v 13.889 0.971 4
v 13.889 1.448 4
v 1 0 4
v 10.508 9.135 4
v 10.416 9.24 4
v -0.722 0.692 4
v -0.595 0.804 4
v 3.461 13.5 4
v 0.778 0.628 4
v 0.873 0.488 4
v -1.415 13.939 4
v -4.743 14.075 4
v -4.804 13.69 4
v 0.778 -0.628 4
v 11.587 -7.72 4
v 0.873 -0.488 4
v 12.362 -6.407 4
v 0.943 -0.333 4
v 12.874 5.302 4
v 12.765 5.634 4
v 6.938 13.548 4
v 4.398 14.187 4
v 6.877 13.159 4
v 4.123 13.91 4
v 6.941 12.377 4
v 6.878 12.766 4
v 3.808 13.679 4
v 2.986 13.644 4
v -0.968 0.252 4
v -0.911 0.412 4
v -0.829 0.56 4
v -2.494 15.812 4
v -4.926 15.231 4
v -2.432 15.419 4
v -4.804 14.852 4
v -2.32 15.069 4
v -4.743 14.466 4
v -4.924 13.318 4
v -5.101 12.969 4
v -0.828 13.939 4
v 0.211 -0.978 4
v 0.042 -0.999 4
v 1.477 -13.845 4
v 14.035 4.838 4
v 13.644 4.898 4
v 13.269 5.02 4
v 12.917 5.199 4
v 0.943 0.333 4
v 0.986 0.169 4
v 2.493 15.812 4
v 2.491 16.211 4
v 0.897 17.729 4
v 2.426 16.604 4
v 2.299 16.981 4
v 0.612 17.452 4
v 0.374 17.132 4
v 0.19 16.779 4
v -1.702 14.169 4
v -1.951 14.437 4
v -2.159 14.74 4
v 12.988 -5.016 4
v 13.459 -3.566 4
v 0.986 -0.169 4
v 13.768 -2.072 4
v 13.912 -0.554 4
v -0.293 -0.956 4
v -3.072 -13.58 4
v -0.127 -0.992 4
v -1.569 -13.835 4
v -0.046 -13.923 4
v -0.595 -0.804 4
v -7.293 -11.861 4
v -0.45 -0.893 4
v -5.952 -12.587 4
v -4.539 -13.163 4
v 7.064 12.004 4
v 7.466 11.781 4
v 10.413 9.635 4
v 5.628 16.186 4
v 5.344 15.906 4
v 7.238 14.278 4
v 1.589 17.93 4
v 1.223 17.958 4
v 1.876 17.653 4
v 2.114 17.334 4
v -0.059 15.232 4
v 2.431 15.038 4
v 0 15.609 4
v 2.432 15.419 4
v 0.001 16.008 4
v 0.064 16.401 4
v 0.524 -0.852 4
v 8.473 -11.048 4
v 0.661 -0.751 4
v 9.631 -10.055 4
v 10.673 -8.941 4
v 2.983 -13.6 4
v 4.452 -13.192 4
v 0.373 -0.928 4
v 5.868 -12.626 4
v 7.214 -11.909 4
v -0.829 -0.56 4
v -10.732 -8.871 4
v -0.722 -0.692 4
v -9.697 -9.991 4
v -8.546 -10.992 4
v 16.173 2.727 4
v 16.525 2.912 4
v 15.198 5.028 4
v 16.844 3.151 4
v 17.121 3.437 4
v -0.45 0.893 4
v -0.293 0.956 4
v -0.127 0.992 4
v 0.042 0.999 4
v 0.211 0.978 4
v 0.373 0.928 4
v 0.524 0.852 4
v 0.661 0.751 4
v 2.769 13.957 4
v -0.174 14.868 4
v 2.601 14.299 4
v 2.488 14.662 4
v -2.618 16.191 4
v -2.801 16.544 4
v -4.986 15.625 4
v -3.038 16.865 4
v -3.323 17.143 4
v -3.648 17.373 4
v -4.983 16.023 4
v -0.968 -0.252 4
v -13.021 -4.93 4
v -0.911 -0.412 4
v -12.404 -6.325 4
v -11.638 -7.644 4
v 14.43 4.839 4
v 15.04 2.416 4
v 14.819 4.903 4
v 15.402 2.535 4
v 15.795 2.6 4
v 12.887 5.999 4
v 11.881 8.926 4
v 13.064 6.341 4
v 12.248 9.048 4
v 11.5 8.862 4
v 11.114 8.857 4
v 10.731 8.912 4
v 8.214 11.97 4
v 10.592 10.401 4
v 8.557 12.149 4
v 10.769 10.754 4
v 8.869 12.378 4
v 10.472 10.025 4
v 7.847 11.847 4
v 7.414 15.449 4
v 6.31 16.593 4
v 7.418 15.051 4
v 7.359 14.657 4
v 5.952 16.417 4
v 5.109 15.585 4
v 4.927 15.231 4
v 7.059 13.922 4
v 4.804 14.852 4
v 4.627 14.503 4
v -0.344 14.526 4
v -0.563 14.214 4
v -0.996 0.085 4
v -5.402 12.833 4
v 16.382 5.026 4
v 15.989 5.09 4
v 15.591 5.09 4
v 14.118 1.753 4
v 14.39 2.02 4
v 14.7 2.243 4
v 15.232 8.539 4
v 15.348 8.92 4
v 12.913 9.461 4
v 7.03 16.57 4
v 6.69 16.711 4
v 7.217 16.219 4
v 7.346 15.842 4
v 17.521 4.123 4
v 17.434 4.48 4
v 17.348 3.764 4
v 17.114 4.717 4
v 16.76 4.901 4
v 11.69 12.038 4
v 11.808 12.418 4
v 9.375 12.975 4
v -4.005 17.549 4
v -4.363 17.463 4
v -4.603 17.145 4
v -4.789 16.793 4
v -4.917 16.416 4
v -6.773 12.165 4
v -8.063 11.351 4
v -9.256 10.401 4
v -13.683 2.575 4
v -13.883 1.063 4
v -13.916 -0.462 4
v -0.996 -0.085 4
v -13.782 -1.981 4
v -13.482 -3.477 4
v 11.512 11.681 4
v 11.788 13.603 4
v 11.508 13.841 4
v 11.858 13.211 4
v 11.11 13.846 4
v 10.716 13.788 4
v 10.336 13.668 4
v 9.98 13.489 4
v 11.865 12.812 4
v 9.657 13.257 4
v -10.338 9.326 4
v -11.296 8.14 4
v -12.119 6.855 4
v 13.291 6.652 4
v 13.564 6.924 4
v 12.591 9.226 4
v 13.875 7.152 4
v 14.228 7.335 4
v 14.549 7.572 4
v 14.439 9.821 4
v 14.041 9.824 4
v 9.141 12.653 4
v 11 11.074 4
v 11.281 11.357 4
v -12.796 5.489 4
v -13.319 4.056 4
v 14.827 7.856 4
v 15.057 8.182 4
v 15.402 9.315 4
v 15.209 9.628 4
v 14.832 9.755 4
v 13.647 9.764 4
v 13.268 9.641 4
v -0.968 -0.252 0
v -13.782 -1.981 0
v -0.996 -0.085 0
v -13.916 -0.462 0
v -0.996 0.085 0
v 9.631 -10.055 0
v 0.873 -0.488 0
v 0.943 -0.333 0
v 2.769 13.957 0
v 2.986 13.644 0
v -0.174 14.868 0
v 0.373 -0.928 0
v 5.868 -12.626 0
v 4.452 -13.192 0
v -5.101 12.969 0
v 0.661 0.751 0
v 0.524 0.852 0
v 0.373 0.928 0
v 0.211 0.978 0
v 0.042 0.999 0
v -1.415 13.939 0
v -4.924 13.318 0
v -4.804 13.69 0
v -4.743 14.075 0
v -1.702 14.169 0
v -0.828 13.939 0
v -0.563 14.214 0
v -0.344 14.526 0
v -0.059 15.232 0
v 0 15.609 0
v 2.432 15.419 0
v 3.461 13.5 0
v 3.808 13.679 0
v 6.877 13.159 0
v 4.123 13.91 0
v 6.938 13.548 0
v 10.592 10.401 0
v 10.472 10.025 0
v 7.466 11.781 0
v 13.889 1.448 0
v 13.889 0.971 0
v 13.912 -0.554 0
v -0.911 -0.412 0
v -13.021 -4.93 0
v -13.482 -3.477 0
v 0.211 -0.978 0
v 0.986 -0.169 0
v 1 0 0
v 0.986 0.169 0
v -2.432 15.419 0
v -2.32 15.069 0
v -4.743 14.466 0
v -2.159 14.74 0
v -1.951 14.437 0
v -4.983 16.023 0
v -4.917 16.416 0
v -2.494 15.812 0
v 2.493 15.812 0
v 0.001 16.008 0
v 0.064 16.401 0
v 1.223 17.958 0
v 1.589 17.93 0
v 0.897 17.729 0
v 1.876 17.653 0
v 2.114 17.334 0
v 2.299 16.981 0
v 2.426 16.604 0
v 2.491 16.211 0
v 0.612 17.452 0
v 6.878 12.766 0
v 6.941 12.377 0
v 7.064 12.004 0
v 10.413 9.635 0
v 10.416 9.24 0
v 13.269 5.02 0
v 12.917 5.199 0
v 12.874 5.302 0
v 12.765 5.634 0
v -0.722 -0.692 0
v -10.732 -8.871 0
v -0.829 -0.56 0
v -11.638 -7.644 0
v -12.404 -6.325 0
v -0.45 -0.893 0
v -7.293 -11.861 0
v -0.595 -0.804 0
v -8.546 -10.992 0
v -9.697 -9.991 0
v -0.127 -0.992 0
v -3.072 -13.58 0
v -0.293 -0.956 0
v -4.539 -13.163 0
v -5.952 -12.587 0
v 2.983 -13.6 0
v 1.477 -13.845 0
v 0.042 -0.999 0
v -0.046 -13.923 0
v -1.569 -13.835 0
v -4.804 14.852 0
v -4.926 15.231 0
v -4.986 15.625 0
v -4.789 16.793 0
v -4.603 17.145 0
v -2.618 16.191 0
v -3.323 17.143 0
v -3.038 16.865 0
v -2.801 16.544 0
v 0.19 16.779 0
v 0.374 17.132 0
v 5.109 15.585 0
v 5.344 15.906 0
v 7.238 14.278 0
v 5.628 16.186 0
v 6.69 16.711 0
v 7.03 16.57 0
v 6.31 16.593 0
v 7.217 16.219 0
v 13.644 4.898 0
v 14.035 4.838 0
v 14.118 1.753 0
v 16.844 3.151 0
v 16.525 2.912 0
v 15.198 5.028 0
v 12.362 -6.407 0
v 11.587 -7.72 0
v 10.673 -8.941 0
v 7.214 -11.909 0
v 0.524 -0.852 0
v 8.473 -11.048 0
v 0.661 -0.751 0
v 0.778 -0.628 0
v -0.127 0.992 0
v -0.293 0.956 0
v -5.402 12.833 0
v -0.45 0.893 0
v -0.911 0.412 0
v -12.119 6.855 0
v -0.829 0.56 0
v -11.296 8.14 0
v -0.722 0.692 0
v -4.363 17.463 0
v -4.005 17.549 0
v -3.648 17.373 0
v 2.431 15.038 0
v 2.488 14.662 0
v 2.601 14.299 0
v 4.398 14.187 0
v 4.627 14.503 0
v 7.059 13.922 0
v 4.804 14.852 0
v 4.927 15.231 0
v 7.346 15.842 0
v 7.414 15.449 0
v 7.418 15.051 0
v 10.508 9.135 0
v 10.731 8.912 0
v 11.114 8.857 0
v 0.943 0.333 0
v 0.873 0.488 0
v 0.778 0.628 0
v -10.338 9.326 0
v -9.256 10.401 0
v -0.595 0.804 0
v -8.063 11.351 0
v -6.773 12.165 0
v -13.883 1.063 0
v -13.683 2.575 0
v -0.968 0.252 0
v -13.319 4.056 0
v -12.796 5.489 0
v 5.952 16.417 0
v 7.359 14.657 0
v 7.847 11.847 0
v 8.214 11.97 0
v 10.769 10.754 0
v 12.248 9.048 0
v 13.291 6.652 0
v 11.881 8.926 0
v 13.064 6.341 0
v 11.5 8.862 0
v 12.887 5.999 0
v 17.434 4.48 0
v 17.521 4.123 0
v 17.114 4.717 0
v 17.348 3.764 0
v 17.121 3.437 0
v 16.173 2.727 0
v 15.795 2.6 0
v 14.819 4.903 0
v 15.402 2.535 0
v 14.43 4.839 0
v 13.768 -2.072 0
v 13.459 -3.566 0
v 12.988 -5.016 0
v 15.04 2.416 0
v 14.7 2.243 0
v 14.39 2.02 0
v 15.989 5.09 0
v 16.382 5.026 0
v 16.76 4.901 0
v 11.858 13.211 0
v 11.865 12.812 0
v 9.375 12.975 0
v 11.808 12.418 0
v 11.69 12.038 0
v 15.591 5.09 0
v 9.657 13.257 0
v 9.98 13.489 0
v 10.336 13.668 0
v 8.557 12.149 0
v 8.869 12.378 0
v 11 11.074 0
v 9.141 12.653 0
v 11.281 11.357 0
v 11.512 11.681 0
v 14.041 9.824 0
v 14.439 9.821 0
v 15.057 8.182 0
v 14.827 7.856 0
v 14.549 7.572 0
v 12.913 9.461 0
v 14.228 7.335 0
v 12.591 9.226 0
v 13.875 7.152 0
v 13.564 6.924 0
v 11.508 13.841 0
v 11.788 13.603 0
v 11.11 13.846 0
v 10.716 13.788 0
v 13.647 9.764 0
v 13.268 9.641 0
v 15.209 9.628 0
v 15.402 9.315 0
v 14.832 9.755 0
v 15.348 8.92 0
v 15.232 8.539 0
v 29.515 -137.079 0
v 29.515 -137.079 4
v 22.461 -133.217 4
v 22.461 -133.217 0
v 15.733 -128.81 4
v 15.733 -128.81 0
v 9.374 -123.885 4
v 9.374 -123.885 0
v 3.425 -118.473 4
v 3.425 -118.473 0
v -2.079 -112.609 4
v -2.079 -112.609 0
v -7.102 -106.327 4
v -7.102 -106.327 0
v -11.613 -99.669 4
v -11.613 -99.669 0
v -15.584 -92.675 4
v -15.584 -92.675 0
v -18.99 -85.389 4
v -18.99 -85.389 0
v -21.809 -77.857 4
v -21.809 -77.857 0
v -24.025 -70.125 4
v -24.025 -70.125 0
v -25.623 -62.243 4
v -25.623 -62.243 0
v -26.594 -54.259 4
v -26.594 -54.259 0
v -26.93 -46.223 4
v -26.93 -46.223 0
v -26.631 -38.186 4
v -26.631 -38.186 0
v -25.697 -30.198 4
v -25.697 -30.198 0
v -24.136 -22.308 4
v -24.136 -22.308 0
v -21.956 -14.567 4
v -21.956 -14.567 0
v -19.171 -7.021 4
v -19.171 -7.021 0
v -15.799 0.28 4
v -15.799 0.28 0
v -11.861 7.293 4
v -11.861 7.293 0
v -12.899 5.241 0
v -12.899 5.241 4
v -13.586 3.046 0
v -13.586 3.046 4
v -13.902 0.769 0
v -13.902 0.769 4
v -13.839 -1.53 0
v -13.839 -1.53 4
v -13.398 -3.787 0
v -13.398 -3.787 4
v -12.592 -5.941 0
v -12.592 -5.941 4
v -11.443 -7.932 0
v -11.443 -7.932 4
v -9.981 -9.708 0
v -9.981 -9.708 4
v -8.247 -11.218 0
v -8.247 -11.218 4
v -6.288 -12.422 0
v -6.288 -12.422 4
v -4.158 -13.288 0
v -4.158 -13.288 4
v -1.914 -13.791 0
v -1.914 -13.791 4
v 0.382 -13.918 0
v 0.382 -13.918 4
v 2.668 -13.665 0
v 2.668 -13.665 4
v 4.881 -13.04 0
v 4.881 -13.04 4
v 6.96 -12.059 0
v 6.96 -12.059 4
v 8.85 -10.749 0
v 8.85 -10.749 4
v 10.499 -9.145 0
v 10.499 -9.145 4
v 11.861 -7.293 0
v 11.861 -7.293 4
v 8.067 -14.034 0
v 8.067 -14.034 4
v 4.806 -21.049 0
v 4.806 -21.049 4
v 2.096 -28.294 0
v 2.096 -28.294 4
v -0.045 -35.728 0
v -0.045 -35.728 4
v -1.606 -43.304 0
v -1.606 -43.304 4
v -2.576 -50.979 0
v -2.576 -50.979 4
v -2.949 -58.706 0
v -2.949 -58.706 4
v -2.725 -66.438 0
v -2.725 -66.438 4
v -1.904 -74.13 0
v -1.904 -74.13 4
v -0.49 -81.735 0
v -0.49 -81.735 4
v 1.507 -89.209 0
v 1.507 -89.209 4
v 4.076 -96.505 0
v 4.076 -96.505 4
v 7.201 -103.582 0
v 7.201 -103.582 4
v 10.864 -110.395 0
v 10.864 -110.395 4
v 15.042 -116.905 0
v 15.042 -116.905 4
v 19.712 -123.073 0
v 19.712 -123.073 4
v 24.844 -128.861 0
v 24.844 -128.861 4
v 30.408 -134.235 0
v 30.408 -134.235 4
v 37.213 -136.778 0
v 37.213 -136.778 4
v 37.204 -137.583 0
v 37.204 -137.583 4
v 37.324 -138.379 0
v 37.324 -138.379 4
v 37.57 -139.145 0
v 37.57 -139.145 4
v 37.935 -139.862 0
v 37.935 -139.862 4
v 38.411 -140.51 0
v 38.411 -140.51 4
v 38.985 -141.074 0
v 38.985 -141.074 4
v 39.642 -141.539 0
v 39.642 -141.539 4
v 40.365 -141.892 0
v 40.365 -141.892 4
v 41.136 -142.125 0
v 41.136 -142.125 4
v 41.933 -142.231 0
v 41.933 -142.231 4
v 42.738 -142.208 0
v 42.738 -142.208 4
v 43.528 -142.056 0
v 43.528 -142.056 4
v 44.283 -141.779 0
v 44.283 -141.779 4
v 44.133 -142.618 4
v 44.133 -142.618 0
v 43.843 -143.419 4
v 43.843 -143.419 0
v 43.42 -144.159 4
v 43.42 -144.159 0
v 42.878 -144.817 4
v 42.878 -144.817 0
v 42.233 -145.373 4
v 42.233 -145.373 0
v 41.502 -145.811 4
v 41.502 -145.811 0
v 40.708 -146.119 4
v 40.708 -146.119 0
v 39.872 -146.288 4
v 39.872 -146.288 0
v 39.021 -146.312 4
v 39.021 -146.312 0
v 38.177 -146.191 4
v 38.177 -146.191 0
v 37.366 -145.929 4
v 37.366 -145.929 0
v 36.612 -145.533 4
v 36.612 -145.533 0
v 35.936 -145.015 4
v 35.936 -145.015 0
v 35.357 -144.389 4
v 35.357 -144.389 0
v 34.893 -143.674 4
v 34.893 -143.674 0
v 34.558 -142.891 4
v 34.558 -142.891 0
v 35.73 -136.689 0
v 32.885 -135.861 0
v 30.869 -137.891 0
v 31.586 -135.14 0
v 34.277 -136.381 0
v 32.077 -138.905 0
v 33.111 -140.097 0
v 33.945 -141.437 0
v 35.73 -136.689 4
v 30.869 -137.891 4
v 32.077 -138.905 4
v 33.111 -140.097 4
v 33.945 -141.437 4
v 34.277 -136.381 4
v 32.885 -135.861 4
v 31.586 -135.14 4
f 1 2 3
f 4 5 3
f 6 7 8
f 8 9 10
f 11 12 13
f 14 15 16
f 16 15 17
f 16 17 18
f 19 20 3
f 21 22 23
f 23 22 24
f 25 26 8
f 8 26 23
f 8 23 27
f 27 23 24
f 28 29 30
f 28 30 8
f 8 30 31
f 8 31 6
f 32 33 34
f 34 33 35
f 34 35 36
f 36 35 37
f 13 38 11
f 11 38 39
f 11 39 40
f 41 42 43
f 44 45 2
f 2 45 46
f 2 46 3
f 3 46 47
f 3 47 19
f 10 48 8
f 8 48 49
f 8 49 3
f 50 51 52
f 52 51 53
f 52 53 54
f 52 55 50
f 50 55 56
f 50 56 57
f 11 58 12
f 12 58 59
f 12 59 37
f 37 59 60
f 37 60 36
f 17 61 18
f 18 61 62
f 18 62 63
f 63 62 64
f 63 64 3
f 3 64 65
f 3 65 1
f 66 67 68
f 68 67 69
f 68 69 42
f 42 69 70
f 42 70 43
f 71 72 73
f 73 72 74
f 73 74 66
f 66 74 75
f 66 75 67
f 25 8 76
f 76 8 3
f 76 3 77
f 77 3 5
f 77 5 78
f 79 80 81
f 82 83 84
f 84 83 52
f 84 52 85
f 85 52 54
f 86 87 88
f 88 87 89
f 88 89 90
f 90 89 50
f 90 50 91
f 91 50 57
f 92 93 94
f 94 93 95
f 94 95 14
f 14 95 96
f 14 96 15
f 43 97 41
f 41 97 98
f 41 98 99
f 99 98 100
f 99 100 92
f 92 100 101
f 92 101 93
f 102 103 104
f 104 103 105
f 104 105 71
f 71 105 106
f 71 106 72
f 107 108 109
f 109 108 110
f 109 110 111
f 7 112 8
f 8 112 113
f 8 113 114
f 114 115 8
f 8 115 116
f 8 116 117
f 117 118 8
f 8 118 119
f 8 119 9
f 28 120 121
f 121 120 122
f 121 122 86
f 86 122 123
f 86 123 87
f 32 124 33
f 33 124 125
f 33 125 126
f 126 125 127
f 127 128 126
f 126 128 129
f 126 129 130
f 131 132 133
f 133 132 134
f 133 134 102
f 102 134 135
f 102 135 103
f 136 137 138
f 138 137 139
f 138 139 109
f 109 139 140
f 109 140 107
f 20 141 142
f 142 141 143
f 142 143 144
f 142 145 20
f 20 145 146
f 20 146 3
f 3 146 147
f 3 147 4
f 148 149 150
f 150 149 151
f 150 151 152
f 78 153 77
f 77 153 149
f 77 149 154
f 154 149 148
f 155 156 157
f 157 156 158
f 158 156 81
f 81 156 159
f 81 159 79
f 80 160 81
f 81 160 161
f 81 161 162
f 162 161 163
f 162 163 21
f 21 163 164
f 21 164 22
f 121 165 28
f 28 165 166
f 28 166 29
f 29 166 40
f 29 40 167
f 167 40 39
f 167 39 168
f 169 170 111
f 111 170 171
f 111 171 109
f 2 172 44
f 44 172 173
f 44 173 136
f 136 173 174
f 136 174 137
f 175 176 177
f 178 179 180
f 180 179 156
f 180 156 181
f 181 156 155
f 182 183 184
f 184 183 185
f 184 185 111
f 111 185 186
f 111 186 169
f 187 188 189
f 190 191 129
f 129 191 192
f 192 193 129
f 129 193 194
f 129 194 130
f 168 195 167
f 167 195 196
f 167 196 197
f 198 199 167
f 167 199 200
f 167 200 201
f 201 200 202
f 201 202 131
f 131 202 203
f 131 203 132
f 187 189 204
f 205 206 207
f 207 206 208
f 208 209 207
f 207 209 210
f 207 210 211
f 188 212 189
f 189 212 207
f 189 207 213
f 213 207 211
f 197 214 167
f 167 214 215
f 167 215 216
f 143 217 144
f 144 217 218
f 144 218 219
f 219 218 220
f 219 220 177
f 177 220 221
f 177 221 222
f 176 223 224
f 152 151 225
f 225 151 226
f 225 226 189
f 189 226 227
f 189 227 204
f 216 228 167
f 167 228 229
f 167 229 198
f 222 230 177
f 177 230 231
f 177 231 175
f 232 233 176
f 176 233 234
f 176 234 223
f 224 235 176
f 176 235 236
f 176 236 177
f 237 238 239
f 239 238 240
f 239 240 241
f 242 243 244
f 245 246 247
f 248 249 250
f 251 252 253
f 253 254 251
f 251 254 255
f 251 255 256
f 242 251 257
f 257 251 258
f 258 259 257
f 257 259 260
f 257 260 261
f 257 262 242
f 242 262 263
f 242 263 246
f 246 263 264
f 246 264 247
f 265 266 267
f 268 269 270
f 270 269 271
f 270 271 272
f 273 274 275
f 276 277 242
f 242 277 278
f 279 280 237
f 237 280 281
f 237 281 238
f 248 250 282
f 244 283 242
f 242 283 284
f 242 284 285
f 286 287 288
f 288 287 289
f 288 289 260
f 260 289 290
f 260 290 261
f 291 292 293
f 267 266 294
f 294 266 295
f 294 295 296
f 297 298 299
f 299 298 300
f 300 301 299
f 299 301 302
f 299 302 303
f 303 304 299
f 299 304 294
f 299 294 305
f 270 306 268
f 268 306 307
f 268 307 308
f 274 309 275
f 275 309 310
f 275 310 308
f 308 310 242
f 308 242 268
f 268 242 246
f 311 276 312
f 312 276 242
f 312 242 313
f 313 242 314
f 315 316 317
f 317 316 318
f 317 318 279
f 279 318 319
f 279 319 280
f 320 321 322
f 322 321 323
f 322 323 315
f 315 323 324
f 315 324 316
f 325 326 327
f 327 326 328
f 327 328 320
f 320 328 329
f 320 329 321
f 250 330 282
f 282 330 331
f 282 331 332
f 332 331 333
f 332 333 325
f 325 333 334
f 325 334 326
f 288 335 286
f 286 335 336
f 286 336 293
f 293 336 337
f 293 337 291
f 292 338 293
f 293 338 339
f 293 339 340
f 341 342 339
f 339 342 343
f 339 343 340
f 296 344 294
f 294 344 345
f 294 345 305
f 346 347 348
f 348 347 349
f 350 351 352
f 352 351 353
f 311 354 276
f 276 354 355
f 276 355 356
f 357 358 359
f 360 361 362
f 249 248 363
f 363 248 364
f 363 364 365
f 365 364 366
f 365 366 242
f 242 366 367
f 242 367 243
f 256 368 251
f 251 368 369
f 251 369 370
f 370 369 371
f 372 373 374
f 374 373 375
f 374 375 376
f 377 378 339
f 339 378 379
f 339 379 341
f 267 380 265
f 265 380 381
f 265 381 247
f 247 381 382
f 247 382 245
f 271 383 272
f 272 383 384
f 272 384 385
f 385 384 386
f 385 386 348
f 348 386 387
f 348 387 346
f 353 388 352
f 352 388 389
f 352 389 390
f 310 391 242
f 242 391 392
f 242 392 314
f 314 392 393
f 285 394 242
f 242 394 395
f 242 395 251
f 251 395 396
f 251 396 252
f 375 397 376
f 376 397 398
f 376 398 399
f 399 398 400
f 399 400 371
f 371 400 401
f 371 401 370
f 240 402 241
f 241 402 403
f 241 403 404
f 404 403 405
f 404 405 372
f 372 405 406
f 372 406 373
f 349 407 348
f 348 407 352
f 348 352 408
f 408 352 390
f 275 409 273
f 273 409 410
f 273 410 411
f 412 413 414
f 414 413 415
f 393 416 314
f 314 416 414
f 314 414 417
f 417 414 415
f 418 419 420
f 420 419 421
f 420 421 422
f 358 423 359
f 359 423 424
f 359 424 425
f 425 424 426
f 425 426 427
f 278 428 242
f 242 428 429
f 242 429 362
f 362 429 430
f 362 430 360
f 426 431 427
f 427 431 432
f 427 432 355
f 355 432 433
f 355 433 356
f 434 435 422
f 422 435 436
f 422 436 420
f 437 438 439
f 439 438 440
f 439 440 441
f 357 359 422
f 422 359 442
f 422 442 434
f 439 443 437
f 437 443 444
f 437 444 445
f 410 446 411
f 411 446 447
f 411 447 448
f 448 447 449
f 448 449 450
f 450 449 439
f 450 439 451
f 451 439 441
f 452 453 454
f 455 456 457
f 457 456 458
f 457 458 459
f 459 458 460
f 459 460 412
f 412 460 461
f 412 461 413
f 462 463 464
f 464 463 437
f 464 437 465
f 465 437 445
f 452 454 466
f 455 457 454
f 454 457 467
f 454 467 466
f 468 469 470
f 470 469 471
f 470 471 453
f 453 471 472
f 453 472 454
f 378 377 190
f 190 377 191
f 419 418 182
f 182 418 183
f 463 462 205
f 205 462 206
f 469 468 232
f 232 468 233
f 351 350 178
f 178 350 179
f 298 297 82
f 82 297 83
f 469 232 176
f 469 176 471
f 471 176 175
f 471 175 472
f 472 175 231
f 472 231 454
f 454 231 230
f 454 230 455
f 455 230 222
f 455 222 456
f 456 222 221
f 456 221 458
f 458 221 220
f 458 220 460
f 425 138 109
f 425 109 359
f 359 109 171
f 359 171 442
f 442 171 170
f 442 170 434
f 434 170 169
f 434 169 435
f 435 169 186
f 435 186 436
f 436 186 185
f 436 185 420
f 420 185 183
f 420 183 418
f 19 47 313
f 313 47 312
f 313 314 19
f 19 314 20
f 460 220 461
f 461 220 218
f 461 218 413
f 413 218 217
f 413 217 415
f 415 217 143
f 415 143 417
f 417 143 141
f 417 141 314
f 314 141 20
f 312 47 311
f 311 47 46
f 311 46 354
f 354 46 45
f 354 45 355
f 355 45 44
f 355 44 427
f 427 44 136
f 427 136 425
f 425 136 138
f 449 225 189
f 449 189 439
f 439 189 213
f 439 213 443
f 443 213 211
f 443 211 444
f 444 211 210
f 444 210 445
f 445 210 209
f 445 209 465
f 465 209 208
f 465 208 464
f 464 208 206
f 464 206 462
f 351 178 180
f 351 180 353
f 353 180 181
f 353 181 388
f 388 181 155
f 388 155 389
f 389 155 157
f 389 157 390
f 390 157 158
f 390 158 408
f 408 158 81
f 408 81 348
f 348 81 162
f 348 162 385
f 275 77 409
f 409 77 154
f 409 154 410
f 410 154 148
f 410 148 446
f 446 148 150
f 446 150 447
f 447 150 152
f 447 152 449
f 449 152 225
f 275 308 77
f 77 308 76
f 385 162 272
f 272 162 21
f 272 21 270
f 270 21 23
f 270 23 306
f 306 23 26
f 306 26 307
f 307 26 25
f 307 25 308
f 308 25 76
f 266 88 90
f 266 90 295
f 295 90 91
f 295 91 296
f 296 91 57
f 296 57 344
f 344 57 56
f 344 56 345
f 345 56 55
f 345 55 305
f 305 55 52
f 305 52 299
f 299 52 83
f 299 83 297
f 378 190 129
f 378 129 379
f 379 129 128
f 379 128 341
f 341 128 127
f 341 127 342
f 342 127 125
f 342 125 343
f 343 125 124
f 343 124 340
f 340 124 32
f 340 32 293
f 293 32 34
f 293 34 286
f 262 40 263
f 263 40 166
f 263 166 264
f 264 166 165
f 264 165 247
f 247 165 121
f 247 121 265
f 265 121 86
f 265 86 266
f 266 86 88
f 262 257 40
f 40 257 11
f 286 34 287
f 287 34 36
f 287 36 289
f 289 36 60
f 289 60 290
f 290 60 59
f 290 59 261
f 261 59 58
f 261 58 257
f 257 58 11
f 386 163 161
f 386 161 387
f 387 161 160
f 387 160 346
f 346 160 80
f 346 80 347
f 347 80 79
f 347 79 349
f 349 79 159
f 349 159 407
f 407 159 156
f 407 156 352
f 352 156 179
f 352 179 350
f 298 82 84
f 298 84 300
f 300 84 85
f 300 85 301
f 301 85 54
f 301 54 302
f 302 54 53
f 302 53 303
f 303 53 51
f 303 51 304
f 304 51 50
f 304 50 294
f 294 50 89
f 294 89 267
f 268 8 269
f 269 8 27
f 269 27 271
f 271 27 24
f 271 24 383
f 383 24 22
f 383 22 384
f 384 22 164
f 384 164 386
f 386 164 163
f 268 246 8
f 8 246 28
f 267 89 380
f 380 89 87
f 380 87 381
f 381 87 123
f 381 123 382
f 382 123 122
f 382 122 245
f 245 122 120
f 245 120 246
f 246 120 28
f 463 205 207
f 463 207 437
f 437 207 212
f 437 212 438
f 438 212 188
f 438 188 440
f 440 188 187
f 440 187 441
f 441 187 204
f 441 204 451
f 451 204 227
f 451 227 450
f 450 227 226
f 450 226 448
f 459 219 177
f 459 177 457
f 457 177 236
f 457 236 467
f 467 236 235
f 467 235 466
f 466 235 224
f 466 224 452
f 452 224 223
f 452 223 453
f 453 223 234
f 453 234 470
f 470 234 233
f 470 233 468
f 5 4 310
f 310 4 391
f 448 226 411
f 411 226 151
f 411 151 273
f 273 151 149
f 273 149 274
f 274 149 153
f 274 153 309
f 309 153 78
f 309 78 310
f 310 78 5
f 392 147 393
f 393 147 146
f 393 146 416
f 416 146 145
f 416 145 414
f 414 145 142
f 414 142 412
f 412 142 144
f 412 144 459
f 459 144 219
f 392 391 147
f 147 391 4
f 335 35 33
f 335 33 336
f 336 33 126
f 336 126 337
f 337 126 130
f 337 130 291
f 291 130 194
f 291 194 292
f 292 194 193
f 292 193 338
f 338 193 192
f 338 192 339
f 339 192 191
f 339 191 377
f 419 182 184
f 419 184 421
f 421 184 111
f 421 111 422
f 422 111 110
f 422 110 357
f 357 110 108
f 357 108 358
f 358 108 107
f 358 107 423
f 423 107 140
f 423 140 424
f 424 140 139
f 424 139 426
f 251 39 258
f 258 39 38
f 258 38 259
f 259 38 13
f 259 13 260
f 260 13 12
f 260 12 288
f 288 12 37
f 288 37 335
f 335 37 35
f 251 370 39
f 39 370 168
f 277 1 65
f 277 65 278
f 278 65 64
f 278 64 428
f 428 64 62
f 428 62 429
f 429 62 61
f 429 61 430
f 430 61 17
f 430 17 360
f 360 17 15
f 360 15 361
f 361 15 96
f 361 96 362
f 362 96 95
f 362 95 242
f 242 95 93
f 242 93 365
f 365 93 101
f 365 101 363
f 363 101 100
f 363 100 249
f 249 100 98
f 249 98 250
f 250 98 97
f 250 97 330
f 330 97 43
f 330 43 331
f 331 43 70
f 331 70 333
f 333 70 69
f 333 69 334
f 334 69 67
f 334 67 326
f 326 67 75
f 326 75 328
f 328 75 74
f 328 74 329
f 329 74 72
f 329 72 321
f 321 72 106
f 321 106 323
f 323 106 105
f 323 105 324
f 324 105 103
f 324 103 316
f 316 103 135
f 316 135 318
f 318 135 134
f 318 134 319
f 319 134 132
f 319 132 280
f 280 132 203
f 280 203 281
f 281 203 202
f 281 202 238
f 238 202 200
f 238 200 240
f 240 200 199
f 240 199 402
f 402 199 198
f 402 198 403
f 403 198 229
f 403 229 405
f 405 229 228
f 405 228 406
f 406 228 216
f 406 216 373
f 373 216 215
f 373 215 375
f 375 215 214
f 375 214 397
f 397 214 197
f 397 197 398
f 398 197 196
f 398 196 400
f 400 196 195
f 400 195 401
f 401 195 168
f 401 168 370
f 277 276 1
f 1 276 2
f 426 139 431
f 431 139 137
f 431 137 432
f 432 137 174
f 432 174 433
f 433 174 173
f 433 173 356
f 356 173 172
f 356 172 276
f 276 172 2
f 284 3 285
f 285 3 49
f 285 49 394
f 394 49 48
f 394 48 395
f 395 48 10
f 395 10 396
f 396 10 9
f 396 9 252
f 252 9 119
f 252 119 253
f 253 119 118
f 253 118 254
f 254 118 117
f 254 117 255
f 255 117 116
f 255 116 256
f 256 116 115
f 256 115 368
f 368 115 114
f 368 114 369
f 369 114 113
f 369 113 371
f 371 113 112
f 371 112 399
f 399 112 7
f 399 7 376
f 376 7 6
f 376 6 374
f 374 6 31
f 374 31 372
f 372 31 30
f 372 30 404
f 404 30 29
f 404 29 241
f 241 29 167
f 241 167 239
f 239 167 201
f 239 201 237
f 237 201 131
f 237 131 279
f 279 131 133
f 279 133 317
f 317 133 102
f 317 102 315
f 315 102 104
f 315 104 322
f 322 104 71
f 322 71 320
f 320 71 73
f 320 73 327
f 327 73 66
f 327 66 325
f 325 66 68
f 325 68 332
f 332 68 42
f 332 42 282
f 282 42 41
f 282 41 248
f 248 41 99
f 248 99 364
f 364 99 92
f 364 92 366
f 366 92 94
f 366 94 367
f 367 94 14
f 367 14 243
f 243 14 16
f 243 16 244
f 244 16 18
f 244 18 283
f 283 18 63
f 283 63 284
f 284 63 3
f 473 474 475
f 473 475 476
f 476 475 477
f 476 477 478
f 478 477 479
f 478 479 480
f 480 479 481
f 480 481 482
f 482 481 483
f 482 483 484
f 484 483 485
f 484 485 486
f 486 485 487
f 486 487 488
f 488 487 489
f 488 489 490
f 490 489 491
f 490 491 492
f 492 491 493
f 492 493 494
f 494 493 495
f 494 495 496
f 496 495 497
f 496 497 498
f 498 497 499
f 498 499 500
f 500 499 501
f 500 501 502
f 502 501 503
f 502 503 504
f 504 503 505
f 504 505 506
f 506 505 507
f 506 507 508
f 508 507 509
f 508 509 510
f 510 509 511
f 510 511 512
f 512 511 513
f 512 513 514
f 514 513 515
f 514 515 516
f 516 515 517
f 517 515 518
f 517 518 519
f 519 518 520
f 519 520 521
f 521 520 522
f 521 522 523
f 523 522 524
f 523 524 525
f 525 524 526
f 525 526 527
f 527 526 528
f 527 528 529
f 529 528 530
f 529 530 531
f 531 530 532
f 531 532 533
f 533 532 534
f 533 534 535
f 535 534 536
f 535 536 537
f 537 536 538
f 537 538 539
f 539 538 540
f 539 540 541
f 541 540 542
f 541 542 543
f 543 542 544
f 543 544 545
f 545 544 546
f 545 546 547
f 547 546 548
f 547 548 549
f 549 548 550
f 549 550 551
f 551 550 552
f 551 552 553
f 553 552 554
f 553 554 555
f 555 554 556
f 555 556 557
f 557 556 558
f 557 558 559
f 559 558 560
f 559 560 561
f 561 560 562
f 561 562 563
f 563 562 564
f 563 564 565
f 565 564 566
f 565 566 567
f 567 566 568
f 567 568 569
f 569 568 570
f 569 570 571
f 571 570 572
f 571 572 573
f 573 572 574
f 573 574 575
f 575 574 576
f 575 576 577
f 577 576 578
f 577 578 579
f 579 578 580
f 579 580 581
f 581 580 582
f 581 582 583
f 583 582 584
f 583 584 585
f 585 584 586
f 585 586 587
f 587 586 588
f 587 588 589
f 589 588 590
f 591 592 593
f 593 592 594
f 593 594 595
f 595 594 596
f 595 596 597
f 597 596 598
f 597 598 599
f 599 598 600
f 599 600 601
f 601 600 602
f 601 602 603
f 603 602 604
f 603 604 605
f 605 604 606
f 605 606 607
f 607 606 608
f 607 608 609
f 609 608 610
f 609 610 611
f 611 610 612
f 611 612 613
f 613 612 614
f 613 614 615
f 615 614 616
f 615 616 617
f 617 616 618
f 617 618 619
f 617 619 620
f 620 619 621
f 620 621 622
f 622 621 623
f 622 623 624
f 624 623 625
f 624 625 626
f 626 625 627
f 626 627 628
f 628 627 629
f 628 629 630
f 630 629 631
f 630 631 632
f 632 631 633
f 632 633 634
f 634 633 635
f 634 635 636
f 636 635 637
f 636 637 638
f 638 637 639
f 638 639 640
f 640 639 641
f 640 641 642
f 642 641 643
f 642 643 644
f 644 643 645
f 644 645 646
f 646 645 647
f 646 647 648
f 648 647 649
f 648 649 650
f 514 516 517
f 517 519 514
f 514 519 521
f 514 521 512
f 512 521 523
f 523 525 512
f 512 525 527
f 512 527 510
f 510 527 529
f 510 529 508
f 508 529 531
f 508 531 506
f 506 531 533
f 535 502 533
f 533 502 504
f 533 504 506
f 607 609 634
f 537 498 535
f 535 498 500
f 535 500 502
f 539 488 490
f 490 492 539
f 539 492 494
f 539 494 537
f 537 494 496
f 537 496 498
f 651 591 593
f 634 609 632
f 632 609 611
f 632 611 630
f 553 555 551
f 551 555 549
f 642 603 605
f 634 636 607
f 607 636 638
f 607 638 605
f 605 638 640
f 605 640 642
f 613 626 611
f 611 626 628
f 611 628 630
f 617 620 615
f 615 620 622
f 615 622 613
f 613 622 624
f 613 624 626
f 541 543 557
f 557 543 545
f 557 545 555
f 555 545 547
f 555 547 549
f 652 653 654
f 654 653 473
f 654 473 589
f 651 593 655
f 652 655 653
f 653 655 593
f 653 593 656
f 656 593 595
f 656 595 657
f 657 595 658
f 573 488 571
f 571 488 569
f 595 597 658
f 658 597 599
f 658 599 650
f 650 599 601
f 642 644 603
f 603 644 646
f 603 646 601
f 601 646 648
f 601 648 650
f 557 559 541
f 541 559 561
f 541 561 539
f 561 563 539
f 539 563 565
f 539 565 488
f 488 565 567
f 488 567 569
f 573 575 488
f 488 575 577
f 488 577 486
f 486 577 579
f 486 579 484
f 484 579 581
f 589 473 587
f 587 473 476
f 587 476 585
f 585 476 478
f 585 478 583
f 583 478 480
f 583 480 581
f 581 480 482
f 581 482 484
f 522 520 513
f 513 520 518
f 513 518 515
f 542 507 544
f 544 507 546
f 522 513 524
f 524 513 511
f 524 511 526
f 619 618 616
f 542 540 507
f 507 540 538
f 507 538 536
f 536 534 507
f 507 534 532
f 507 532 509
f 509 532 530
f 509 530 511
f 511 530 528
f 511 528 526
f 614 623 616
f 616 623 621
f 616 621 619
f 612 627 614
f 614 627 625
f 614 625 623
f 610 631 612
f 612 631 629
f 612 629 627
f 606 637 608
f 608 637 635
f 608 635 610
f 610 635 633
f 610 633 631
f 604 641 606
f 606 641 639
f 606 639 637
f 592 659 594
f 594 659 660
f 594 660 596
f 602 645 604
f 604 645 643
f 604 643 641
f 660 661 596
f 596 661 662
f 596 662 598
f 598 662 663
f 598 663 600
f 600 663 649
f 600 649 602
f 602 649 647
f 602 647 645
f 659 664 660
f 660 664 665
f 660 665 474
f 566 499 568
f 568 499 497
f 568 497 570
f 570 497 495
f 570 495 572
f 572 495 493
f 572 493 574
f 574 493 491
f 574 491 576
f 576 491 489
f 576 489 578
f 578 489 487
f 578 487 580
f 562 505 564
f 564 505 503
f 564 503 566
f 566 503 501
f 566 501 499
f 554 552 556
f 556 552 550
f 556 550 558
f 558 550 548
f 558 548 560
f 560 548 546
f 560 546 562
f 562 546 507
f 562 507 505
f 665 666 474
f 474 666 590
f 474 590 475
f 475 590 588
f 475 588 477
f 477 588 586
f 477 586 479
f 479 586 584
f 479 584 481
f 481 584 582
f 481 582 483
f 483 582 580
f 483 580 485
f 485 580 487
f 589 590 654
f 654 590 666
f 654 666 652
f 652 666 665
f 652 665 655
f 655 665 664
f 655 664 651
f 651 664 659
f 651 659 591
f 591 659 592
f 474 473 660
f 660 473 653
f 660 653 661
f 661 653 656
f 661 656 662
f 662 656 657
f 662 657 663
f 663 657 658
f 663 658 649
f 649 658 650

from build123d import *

# Parameters (mm, degrees)
ESQUISSE1_R             = 18
BOSS_EXTRU_1_DEPTH      = 4
ESQUISSE3_R             = 1
ENL_V_MAT_EXTRU_3_DEPTH = 26.768197453
BOSS_EXTRU_2_DEPTH      = 4
CONG_1_R                = 10


with BuildPart() as part:
    # Esquisse1 → Boss.-Extru.1 (new body)
    with BuildSketch(Plane.XY):
        Circle(ESQUISSE1_R)
    extrude(amount=BOSS_EXTRU_1_DEPTH)

    # Esquisse3 → Enlèv. mat.-Extru.3 (cut, through all)
    with BuildSketch(Plane.XY.offset(4)):
        with BuildLine():
            ThreePointArc((13.889472301, 0.971270565), (-7.29270091, -11.860747057), (-5.401914148, 12.832775649))
            Line((-5.401914148, 12.832775649), (-5.100509092, 12.969438951))
            ThreePointArc((-5.100509092, 12.969438951), (-4.765685498, 13.881250232), (-4.803657598, 14.851850443))
            ThreePointArc((-4.803657598, 14.851850443), (-4.957505402, 16.220683727), (-4.36298455, 17.463228963))
            ThreePointArc((-4.36298455, 17.463228963), (-9.368945013, -15.369543563), (17.521453605, 4.122943556))
            ThreePointArc((17.521453605, 4.122943556), (16.689385656, 3.025201949), (15.402187493, 2.534799463))
            ThreePointArc((15.402187493, 2.534799463), (14.540813003, 2.137466087), (13.889472301, 1.447832043))
            Line((13.889472301, 1.447832043), (13.889472301, 0.971270565))
        make_face()
        with BuildLine():
            ThreePointArc((11.000443663, 11.074422202), (10.524374819, 10.215627293), (10.415766238, 9.239730569))
            ThreePointArc((10.415766238, 9.239730569), (10.462012349, 9.18733394), (10.507994882, 9.134705846))
            Line((10.507994882, 9.134705846), (10.731094032, 8.911606695))
            ThreePointArc((10.731094032, 8.911606695), (11.691932834, 8.886448288), (12.591250594, 9.225670511))
            ThreePointArc((12.591250594, 9.225670511), (13.842476168, 9.801698523), (15.208877287, 9.627567278))
            ThreePointArc((15.208877287, 9.627567278), (13.644120592, 11.740441784), (11.788259754, 13.602828088))
            ThreePointArc((11.788259754, 13.602828088), (11.756646891, 12.225739007), (11.000443663, 11.074422202))
        make_face()
        with BuildLine():
            Line((12.765286048, 5.634000541), (12.874449055, 5.301826936))
            ThreePointArc((12.874449055, 5.301826936), (12.895585113, 5.250208748), (12.916514217, 5.198506303))
            ThreePointArc((12.916514217, 5.198506303), (13.838334104, 4.860248506), (14.81932063, 4.903093306))
            ThreePointArc((14.81932063, 4.903093306), (16.187092013, 5.066112175), (17.433594078, 4.479932758))
            ThreePointArc((17.433594078, 4.479932758), (16.594995048, 6.971810335), (15.402333491, 9.314940849))
            ThreePointArc((15.402333491, 9.314940849), (14.948466893, 8.014410642), (13.874653946, 7.151682723))
            ThreePointArc((13.874653946, 7.151682723), (13.171881983, 6.501088333), (12.765286048, 5.634000541))
        make_face()
        with BuildLine():
            ThreePointArc((-4.005414493, 17.548693819), (-2.913274427, 16.709287014), (-2.431510322, 15.418830872))
            ThreePointArc((-2.431510322, 15.418830872), (-2.060789897, 14.584674949), (-1.415325051, 13.939210103))
            Line((-1.415325051, 13.939210103), (-0.828029009, 13.939210103))
            ThreePointArc((-0.828029009, 13.939210103), (-0.252520041, 14.694227343), (0, 15.609375))
            ThreePointArc((0, 15.609375), (0.274865703, 16.959124071), (1.222917541, 17.958409526))
            ThreePointArc((1.222917541, 17.958409526), (-1.40625, 17.944984284), (-4.005414493, 17.548693819))
        make_face()
        with BuildLine():
            ThreePointArc((9.141071212, 12.652802258), (10.154306768, 13.585930018), (11.50798377, 13.840748157))
            ThreePointArc((11.50798377, 13.840748157), (9.368945013, 15.369543563), (7.030015125, 16.570422063))
            ThreePointArc((7.030015125, 16.570422063), (7.423724348, 15.250434656), (7.058528078, 13.922276009))
            ThreePointArc((7.058528078, 13.922276009), (6.869836592, 12.962423447), (7.063912165, 12.003645011))
            Line((7.063912165, 12.003645011), (7.465689298, 11.781332023))
            ThreePointArc((7.465689298, 11.781332023), (8.388832813, 12.052786521), (9.141071212, 12.652802258))
        make_face()
        with BuildLine():
            ThreePointArc((6.690123005, 16.710543204), (4.184417725, 17.506874316), (1.589435797, 17.9296875))
            ThreePointArc((1.589435797, 17.9296875), (2.37025361, 16.794920012), (2.431510322, 15.418830872))
            ThreePointArc((2.431510322, 15.418830872), (2.537604324, 14.478038859), (2.985925197, 13.644160005))
            Line((2.985925197, 13.644160005), (3.460890209, 13.499921317))
            ThreePointArc((3.460890209, 13.499921317), (4.266125885, 14.042940985), (4.803657598, 14.851850443))
            ThreePointArc((4.803657598, 14.851850443), (5.480558287, 16.051508379), (6.690123005, 16.710543204))
        make_face()
        Circle(ESQUISSE3_R)
    extrude(amount=-ENL_V_MAT_EXTRU_3_DEPTH, mode=Mode.SUBTRACT)


with BuildPart() as body_2:
    # Esquisse4 → Boss.-Extru.2 (new body)
    with BuildSketch(Plane.XY.offset(4)):
        with BuildLine():
            ThreePointArc((34.662895709, -139.460875386), (38.133110698, -146.180749057), (44.283317366, -141.77915251))
            ThreePointArc((44.283317366, -141.77915251), (39.304454281, -141.319889646), (37.212756046, -136.7784363))
            ThreePointArc((37.212756046, -136.7784363), (36.156932302, -137.434905039), (35.295715434, -138.331576935))
            ThreePointArc((35.295715434, -138.331576935), (-1.39226634, -77.277858146), (11.860747007, -7.292700991))
            ThreePointArc((11.860747007, -7.292700991), (-7.29270108, -11.860746952), (-11.860746898, 7.292701169))
            ThreePointArc((-11.860746898, 7.292701169), (-22.174309584, -76.728115021), (34.662895709, -139.460875386))
        make_face()
    extrude(amount=-BOSS_EXTRU_2_DEPTH)

    # Congé1
    # the kernel refuses this fillet: 10 mm, written as the material it adds along each edge
    with BuildSketch(Plane(origin=(35.295715434, -138.331576935, 4), x_dir=(0.7769969213307092, 0.6295043957293704, 0), z_dir=(0, 0, -1))) as cong_1_piece_1_section:
        with BuildLine():
            CenterArc((8.651939918, -7.858086939), CONG_1_R, 128.204465459, 42.598753979)
            Line((-1.219512554, -6.259829735), (-1.416941604, -6.22786459))
            ThreePointArc((-1.416941604, -6.22786459), (-0.855978817, -3.081946873), (-0.194990134, 0.044484239))
            Line((-0.194990134, 0.044484239), (0.04934487, 0.19381714))
            ThreePointArc((0.04934487, 0.19381714), (1.233621755, 0.045428502), (2.343549582, 0.157161739))
            Line((2.343549582, 0.157161739), (2.46724351, 0))
        make_face()
    cong_1_piece_1 = extrude(amount=4, mode=Mode.PRIVATE)
    cong_1_piece_1 = cong_1_piece_1 - Plane(origin=(42.191619131, -137.237699164, 2), x_dir=(0.4183396470439297, -0.9082906691754354, 0), z_dir=(0, 0, 1)) * Cylinder(5, 34, mode=Mode.PRIVATE)
    add(cong_1_piece_1)
    with BuildSketch(Plane(origin=(34.662895709, -139.460875386, 4), x_dir=(-0.030637951982491078, -0.9995305477564548, 0), z_dir=(0, 0, -1))) as cong_1_piece_2:
        with BuildLine():
            CenterArc((6.86373477, 9.392671944), CONG_1_R, 204.674520586, 45.254332631)
            Line((-2.22320436, 5.218041752), (-2.404943142, 5.134549148))
            ThreePointArc((-2.404943142, 5.134549148), (-1.259222511, 2.546125603), (-0.186109843, -0.073233369))
            Line((-0.186109843, -0.073233369), (0.068637348, -0.187853439))
            ThreePointArc((0.068637348, -0.187853439), (1.715933693, 0.103664028), (3.363230038, -0.187853439))
            Line((3.363230038, -0.187853439), (3.431867385, 0))
        make_face()
    extrude(amount=4)


solid = Compound([part.part, body_2.part])
